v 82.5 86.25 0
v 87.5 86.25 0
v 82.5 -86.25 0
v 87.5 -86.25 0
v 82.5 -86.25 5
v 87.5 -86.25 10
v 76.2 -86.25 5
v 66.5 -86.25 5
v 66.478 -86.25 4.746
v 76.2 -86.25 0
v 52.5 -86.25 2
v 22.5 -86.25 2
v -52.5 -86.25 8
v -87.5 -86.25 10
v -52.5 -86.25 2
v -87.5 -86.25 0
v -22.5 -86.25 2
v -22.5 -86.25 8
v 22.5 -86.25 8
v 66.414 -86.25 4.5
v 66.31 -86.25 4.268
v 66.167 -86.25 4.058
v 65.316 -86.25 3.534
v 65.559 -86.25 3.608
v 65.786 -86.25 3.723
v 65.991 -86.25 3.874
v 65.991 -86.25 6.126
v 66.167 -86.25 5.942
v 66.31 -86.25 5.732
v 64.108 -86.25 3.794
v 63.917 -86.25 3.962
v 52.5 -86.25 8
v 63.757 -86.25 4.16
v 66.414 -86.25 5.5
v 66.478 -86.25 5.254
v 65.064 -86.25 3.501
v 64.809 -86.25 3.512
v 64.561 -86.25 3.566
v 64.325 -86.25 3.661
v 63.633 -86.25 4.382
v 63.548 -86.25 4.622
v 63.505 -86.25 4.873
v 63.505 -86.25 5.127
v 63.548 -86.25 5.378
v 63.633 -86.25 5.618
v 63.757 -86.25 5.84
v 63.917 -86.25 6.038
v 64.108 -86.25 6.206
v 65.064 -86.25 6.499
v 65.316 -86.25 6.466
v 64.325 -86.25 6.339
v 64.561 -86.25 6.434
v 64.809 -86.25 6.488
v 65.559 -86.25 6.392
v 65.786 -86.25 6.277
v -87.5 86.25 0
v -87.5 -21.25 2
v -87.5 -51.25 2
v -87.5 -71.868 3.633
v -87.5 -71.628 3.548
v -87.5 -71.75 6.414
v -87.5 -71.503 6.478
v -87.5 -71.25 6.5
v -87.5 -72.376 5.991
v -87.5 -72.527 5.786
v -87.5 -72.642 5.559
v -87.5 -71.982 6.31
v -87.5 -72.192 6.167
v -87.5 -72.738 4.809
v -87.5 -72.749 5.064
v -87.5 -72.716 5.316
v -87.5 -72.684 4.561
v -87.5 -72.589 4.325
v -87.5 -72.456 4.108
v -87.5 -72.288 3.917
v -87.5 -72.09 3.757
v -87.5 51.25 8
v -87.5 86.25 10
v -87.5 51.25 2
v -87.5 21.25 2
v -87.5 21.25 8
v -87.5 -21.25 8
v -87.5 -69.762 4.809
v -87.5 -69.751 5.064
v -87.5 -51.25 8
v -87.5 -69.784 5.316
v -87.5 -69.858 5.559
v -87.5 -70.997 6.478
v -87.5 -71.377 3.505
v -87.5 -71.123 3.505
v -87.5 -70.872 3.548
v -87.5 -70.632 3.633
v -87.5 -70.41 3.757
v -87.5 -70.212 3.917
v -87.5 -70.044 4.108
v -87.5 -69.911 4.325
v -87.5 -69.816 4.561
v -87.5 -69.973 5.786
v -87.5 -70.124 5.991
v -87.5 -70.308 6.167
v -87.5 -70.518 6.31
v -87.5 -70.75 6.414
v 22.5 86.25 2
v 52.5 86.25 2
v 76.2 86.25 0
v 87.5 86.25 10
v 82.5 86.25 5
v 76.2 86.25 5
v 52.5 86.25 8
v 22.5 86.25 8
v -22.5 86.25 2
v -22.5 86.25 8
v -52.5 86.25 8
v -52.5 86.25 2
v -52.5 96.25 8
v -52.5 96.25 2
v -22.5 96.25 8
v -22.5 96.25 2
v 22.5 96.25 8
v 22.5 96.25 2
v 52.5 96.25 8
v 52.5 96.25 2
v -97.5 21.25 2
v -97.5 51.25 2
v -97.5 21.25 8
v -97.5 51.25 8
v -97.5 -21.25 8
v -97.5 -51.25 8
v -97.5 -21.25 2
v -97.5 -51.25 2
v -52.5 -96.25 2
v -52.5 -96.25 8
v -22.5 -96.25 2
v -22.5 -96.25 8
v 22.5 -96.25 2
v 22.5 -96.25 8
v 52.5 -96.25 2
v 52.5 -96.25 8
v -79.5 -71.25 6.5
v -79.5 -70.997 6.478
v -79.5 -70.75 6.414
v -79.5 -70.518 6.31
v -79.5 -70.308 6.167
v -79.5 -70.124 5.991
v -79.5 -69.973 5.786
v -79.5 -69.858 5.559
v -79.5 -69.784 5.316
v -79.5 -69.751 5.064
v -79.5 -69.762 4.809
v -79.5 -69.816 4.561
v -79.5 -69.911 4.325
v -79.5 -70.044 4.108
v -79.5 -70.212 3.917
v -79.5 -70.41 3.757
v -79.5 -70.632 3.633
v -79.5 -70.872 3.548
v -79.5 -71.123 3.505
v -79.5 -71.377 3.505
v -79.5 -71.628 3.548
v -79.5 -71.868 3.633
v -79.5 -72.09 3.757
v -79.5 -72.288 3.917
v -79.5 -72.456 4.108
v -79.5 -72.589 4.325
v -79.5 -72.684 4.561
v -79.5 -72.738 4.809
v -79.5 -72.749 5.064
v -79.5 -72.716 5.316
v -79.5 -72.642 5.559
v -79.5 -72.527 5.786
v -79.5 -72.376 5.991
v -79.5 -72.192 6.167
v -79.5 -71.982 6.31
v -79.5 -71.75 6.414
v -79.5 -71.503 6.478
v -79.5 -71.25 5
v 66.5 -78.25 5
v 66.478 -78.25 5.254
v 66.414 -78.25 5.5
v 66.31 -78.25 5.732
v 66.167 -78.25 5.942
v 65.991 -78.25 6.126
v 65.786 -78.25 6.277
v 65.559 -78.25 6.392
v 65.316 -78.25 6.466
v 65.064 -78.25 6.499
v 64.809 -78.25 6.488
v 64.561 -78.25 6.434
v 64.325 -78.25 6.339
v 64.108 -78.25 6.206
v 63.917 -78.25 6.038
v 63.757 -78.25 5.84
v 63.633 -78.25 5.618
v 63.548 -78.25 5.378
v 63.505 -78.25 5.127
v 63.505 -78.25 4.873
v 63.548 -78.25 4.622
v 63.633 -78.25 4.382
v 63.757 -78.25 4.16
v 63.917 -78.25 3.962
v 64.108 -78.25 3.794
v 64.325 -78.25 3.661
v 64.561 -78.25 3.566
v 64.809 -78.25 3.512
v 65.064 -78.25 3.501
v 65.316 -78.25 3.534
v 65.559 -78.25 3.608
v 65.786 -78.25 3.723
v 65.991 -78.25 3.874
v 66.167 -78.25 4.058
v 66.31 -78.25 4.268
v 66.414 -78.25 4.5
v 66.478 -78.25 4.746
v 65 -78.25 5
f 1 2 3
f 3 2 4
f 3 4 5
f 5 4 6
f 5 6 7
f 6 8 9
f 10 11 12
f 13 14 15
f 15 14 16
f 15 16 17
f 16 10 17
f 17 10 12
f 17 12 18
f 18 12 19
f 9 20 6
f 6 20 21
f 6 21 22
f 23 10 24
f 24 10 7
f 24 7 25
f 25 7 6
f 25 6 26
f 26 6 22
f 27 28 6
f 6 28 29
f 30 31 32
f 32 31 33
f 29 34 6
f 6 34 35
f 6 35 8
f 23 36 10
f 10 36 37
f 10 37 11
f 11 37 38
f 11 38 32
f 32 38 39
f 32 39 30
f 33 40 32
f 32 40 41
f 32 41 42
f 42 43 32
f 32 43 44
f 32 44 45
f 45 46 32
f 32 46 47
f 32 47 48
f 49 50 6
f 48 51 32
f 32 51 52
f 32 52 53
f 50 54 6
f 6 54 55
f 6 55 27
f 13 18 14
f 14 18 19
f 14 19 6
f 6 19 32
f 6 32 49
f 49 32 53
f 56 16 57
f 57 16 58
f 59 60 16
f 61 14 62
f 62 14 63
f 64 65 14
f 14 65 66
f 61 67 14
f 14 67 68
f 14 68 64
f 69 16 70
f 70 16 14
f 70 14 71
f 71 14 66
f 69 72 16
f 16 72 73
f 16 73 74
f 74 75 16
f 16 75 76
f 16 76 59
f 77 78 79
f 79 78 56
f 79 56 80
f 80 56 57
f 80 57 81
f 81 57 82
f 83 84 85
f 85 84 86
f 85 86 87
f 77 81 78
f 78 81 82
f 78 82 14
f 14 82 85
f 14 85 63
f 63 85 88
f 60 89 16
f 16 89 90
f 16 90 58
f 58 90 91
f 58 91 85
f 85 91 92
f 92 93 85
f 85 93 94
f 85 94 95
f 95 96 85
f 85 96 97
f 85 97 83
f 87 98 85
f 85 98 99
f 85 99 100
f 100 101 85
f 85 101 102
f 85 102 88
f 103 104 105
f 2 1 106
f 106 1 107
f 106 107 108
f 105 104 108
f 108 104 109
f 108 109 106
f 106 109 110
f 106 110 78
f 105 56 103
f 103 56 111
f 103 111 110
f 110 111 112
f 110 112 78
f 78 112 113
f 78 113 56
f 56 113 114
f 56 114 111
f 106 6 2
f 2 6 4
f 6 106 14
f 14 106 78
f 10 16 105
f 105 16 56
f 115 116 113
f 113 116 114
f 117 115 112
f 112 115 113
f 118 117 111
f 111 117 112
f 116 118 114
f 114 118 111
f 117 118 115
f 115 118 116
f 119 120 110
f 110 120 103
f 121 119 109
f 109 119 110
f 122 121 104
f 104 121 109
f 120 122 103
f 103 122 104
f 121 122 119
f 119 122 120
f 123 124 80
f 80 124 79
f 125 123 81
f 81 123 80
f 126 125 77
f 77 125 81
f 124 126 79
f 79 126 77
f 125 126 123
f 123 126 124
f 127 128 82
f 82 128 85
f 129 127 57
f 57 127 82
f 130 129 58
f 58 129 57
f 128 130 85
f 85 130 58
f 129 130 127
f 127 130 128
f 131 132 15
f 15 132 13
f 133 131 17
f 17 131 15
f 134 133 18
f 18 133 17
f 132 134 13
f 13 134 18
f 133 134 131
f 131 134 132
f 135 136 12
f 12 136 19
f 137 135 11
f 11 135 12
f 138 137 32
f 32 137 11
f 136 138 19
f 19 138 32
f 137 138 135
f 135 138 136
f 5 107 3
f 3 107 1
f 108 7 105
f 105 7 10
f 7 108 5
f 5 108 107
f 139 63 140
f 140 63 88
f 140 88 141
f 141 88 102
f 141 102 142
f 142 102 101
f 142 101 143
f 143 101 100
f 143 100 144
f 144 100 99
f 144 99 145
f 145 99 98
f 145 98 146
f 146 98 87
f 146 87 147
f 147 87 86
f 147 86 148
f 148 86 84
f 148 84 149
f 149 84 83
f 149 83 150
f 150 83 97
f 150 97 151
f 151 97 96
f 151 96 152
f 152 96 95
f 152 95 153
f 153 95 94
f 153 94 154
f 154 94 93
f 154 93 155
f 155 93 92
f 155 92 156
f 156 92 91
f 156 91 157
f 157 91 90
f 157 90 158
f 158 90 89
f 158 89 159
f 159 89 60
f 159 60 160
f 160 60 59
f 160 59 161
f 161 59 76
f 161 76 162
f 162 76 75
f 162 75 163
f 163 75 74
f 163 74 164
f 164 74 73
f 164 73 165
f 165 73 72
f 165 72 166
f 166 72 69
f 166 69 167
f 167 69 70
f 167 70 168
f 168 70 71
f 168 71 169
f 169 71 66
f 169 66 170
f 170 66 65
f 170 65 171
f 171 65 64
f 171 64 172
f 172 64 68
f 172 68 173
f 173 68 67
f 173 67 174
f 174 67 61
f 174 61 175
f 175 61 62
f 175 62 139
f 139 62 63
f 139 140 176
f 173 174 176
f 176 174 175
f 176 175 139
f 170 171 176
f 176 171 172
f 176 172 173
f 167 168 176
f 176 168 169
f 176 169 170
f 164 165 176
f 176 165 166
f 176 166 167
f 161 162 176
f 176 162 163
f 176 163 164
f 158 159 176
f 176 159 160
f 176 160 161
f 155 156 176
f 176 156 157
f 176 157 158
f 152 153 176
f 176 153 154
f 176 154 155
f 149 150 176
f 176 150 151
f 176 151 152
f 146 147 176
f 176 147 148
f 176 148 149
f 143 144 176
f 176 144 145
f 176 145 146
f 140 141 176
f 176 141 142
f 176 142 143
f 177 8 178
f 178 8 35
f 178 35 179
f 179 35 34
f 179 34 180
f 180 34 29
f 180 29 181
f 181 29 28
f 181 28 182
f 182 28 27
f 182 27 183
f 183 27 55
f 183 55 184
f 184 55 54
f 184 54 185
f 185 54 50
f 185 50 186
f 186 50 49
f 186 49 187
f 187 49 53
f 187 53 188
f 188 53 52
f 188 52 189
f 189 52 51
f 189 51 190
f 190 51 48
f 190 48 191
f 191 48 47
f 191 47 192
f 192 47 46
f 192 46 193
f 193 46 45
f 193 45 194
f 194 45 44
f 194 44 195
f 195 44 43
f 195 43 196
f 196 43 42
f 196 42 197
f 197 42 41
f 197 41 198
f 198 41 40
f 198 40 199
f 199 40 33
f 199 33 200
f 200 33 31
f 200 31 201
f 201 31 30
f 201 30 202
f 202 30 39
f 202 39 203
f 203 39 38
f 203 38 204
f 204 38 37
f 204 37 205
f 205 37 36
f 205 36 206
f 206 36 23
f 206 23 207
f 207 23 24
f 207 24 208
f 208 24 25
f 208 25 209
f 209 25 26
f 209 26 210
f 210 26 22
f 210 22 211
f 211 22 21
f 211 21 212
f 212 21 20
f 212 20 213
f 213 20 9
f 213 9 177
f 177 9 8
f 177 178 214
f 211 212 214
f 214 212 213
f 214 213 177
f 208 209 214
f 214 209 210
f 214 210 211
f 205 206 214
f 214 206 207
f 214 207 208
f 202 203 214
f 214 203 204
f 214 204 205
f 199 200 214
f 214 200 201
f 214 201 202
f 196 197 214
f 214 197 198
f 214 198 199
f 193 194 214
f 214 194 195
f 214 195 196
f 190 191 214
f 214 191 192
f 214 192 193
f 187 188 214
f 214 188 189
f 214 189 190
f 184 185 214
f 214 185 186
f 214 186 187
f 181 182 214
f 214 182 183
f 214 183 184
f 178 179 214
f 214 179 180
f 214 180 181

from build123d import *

# Parameters (mm, degrees)
ESBO_O1_W                = 175
ESBO_O1_H                = 172.5
RESSALTO_EXTRUS_O1_DEPTH = 10
ESBO_O5_W                = 30
ESBO_O5_H                = 6
RESSALTO_EXTRUS_O5_DEPTH = 10
ESBO_O6_W                = 6
ESBO_O6_H                = 30
RESSALTO_EXTRUS_O6_DEPTH = 10
ESBO_O7_W                = 30
ESBO_O7_H                = 6
RESSALTO_EXTRUS_O7_DEPTH = 10
ESBO_O8_W                = 6.3
ESBO_O8_H                = 172.5
CORTE_EXTRUS_O1_DEPTH    = 5
ESBO_O9_R                = 1.5
CORTE_EXTRUS_O2_DEPTH    = 8
ESBO_O10_R               = 1.5
CORTE_EXTRUS_O3_DEPTH    = 8


with BuildPart() as part:
    # Esboço1 → Ressalto-extrusão1 (new body)
    with BuildSketch(Plane.XY):
        Rectangle(ESBO_O1_W, ESBO_O1_H)
    extrude(amount=RESSALTO_EXTRUS_O1_DEPTH)

    # Esboço5 → Ressalto-extrusão5 (add)
    with BuildSketch(Plane(origin=(0, 86.25, 0), x_dir=(1, 0, 0), z_dir=(0, 1, 0))):
        with Locations((-37.5, -5)):
            Rectangle(ESBO_O5_W, ESBO_O5_H)
        with Locations((37.5, -5)):
            Rectangle(ESBO_O5_W, ESBO_O5_H)
    extrude(amount=RESSALTO_EXTRUS_O5_DEPTH)

    # Esboço6 → Ressalto-extrusão6 (add)
    with BuildSketch(Plane.ZY.offset(87.5)):
        with Locations((5, 36.25)):
            Rectangle(ESBO_O6_W, ESBO_O6_H)
        with Locations((5, -36.25)):
            Rectangle(ESBO_O6_W, ESBO_O6_H)
    extrude(amount=RESSALTO_EXTRUS_O6_DEPTH)

    # Esboço7 → Ressalto-extrusão7 (add)
    with BuildSketch(Plane.XZ.offset(86.25)):
        with Locations((-37.5, 5)):
            Rectangle(ESBO_O7_W, ESBO_O7_H)
        with Locations((37.5, 5)):
            Rectangle(ESBO_O7_W, ESBO_O7_H)
    extrude(amount=RESSALTO_EXTRUS_O7_DEPTH)

    # Esboço8 → Corte-extrusão1 (cut)
    with BuildSketch(Plane(origin=(0, 0, 0), x_dir=(-1, 0, 0), z_dir=(0, 0, -1))):
        with Locations((-79.35, 0)):
            Rectangle(ESBO_O8_W, ESBO_O8_H)
    extrude(amount=-CORTE_EXTRUS_O1_DEPTH, mode=Mode.SUBTRACT)

    # Esboço9 → Corte-extrusão2 (cut)
    with BuildSketch(Plane.ZY.offset(87.5)):
        with Locations((5, -71.25)):
            Circle(ESBO_O9_R)
    extrude(amount=-CORTE_EXTRUS_O2_DEPTH, mode=Mode.SUBTRACT)

    # Esboço10 → Corte-extrusão3 (cut)
    with BuildSketch(Plane.XZ.offset(86.25)):
        with Locations((65, 5)):
            Circle(ESBO_O10_R)
    extrude(amount=-CORTE_EXTRUS_O3_DEPTH, mode=Mode.SUBTRACT)


solid = part.part
